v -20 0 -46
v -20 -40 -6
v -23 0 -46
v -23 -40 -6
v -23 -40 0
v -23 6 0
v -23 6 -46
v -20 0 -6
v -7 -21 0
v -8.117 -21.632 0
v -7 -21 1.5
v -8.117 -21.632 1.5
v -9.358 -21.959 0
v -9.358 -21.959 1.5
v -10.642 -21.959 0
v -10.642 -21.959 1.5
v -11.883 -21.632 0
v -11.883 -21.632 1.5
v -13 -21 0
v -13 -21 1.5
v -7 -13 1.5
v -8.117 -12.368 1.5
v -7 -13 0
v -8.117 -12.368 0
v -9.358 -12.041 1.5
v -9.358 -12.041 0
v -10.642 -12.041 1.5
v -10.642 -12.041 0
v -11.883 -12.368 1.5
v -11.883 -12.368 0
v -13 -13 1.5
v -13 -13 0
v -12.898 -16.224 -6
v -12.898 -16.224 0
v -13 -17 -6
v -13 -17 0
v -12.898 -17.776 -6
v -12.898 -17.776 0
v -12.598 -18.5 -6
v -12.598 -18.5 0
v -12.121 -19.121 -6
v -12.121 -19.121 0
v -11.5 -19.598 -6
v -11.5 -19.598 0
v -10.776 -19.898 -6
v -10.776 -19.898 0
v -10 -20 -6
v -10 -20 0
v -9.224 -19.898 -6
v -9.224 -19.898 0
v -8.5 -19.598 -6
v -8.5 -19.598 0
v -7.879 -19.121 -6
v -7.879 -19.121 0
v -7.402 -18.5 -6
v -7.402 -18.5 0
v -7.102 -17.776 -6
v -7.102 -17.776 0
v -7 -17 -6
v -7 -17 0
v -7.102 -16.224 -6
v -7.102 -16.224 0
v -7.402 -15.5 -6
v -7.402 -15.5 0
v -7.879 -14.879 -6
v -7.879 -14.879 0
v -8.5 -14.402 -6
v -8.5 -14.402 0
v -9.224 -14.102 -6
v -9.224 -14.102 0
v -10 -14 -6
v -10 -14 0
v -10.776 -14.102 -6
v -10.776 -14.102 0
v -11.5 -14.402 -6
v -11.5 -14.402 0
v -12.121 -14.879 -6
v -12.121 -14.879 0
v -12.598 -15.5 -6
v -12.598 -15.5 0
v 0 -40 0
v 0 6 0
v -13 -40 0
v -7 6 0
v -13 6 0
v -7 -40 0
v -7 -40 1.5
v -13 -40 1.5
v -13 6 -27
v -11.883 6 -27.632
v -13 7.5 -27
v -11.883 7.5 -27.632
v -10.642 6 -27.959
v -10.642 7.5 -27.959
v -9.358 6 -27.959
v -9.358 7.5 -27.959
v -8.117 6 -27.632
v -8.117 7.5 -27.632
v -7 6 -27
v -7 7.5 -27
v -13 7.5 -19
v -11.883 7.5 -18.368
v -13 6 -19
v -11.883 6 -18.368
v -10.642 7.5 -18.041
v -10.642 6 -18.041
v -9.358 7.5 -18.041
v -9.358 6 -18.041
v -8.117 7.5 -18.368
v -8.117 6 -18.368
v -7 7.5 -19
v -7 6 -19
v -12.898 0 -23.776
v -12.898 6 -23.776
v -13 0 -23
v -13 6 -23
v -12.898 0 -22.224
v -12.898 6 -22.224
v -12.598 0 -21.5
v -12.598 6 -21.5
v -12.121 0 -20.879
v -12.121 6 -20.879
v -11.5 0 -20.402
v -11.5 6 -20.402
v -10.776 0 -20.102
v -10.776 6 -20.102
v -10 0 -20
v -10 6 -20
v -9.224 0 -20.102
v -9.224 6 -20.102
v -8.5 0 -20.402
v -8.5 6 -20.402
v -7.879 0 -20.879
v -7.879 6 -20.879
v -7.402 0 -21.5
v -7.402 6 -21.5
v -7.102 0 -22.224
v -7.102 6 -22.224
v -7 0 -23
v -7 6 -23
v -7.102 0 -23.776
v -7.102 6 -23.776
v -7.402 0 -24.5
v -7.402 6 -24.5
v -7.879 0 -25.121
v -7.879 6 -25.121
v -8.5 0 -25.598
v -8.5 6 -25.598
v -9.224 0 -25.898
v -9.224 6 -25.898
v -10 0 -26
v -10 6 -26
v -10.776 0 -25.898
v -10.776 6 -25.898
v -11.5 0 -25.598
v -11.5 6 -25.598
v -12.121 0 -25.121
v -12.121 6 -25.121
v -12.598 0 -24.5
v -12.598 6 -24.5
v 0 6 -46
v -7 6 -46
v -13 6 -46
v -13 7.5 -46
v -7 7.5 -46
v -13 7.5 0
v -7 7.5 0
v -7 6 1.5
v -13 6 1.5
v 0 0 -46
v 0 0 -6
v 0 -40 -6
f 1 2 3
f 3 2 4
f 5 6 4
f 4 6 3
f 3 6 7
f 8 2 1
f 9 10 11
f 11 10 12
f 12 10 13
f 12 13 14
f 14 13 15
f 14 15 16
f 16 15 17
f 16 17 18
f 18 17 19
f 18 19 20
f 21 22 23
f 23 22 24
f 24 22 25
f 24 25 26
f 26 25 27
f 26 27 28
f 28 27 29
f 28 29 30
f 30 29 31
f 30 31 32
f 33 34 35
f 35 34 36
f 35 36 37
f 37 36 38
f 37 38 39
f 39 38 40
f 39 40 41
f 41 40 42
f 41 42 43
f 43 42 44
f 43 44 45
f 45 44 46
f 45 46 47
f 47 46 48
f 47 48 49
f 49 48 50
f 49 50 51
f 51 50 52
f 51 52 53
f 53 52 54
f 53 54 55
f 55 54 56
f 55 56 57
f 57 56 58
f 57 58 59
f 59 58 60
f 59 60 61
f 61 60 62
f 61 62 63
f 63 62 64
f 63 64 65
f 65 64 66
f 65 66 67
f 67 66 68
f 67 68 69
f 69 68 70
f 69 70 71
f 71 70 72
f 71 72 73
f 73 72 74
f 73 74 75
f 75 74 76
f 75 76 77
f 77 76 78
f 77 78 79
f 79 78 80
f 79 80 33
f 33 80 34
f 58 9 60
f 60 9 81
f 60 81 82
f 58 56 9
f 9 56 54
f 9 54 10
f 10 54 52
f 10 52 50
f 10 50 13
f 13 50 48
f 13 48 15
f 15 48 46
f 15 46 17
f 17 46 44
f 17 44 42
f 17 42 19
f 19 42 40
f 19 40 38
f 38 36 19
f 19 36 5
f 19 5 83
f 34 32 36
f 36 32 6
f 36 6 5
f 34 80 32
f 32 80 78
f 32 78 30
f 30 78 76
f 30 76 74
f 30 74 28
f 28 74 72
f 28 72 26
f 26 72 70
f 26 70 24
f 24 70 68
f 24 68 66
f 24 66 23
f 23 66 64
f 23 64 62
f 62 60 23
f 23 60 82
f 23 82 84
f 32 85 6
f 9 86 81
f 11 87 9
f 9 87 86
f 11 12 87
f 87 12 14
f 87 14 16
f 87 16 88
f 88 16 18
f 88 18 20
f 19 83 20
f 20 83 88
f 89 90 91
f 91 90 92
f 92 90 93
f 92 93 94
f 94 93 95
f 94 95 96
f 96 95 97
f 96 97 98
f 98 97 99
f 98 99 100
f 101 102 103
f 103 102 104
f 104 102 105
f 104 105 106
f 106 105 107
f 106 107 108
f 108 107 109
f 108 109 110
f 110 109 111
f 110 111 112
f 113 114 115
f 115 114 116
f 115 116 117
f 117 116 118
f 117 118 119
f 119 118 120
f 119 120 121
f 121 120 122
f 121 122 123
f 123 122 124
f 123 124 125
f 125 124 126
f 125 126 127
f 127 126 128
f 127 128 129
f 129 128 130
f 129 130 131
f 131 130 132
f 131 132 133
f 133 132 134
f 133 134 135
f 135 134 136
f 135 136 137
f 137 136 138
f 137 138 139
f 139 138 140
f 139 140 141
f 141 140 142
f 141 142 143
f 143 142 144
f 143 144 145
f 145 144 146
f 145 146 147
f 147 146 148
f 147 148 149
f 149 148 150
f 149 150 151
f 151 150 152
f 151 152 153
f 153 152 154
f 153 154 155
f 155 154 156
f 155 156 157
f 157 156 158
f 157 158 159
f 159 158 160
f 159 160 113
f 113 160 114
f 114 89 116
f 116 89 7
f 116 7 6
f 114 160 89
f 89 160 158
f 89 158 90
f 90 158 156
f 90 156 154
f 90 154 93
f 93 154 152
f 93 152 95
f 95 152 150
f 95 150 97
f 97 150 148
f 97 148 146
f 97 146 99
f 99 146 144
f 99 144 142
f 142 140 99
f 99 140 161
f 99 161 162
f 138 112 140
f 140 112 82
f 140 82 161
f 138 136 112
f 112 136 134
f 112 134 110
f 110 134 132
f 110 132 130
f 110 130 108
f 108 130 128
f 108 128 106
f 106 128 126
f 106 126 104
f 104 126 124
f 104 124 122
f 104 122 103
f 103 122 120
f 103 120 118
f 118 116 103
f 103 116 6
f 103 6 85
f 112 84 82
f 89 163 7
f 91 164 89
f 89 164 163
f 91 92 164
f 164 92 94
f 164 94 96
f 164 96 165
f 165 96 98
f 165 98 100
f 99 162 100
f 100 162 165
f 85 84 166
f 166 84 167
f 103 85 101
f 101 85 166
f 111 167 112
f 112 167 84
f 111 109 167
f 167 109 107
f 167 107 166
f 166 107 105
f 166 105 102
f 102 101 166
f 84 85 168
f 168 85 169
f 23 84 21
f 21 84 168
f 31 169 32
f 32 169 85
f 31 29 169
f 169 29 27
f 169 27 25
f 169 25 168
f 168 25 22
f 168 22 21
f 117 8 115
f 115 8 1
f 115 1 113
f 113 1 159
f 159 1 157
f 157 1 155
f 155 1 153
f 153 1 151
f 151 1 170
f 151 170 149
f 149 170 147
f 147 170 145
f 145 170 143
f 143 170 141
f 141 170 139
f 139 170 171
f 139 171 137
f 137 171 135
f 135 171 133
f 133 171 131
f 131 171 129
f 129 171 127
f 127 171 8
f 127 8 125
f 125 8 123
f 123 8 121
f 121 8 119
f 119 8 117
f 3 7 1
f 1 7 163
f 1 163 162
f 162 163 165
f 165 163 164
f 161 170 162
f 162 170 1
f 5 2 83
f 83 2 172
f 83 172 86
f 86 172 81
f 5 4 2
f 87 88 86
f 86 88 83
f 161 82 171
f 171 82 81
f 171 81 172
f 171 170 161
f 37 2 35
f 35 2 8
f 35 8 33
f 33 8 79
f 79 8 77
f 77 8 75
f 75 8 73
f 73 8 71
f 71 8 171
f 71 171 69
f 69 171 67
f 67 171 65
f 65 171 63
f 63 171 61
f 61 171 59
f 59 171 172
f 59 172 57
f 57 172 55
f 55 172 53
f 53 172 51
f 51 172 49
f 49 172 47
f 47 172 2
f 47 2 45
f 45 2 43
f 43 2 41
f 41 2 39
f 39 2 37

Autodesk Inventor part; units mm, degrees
ref_plane "YZ Plane" through (0, 0, 0) normal (1, 0, 0) x (0, 1, 0)
ref_plane "XZ Plane" through (0, 0, 0) normal (0, 1, 0) x (-1, 0, 0)
ref_plane "XY Plane" through (0, 0, 0) normal (0, 0, 1) x (1, 0, 0)
sketch "Sketch1" plane through (0, 0, 0) normal (0, 0, 1) x (1, 0, 0)
  line L0 (0, 6) -> (0, -40)
  line L1 (-20, 6) -> (-20, -40)
  line L2 (-20, 6) -> (0, 6)
  line L3 (-20, -40) -> (0, -40)
  point P0 (0, 0)
  dimension "d6" = 20
  dimension "d10" = 6
extrude "Extrusion1" add sketch "Sketch1" against normal blind 6
sketch "Sketch2" plane through (0, 0, -6) normal (0, 0, -1) x (-1, 0, 0)
  line L0 (20, -40) -> (20, 6) projected
  line L1 (0, 6) -> (0, -40) projected
  line L2 (20, 6) -> (0, 6)
  line L3 (0, 6) -> (0, 0)
  line L4 (0, 0) -> (20, 0)
  line L5 (20, 0) -> (20, 6)
  point P0 (0, 0)
  dimension "d13" = 6
extrude "Extrusion2" add sketch "Sketch2" along normal blind 40
sketch "Sketch3" plane through (0, 0, 0) normal (0, 0, 1) x (1, 0, 0)
  line L0 (0, 6) -> (-20, 6) projected
  line L1 (-13, 6) -> (-13, -40)
  line L2 (-20, 6) -> (-20, -40) projected
  line L3 (-7, 6) -> (-7, -40)
  line L4 (0, -40) -> (-20, -40) projected
  line L5 (-13, 6) -> (-7, 6)
  line L6 (-13, -40) -> (-7, -40)
  point P0 (0, 0)
  dimension "d16" = 7
  dimension "d17" = 6
extrude "Extrusion3" add sketch "Sketch3" along normal blind 1.5 contours L3 L4 L1 L0
sketch "Sketch4" plane through (-20, 6, -46) normal (0, 1, 0) x (1, 0, 0)
  line L0 (20, -46) -> (13, -46) projected
  line L1 (13, -46) -> (13, 0)
  line L2 (20, 0) -> (0, 0) projected
  line L3 (7, -46) -> (7, -47.5) projected
  line L4 (7, -46) -> (7, 0)
  line L5 (7, 0) -> (13, 0)
  line L6 (7, -46) -> (13, -46)
extrude "Extrusion4" add sketch "Sketch4" along normal blind 1.5
sketch "Sketch5" plane through (-20, 7.5, -46) normal (0, 1, 0) x (1, 0, 0)
  line L0 (20, -46) -> (20, 0) projected
  line L1 (0, 0) -> (7, 0) projected
  point P0 (10, -23)
  dimension "d22" = 10
  dimension "d23" = 23
hole "Hole1" at (-10, 7.5, -23) direction (0, -1, 0) diameter 6 end through all counterbore diameter 10 counterbore depth 1.5
sketch "Sketch6" plane through (0, 0, 1.5) normal (0, 0, 1) x (1, 0, 0)
  line L0 (-7, -40) -> (0, -40) projected
  line L1 (0, -40) -> (0, 6) projected
  point P0 (0, 0)
  point P1 (-10, -17)
  dimension "d31" = 23
  dimension "d32" = 10
hole "Hole2" at (-10, -17, 1.5) direction (0, 0, -1) diameter 6 end through all counterbore diameter 10 counterbore depth 1.5
sketch "Sketch7" plane through (-20, -40, 0) normal (-1, 0, 0) x (0, 0, 1)
  line L0 (0, 0) -> (0, 46) projected
  line L1 (0, 46) -> (-46, 46) projected
  line L2 (0, 0) -> (0, 46)
  line L3 (-46, 46) -> (-46, 40) projected
  line L4 (0, 46) -> (-46, 46)
  line L5 (-46, 46) -> (-46, 40)
  line L6 (0, 0) -> (-6, 0) projected
  line L7 (-46, 40) -> (-6, 0)
  line L8 (-6, 0) -> (0, 0)
  point P0 (0, 40)
extrude "Extrusion5" add sketch "Sketch7" along normal blind 3
properties part number "Estrutura - SuporteCanto"
